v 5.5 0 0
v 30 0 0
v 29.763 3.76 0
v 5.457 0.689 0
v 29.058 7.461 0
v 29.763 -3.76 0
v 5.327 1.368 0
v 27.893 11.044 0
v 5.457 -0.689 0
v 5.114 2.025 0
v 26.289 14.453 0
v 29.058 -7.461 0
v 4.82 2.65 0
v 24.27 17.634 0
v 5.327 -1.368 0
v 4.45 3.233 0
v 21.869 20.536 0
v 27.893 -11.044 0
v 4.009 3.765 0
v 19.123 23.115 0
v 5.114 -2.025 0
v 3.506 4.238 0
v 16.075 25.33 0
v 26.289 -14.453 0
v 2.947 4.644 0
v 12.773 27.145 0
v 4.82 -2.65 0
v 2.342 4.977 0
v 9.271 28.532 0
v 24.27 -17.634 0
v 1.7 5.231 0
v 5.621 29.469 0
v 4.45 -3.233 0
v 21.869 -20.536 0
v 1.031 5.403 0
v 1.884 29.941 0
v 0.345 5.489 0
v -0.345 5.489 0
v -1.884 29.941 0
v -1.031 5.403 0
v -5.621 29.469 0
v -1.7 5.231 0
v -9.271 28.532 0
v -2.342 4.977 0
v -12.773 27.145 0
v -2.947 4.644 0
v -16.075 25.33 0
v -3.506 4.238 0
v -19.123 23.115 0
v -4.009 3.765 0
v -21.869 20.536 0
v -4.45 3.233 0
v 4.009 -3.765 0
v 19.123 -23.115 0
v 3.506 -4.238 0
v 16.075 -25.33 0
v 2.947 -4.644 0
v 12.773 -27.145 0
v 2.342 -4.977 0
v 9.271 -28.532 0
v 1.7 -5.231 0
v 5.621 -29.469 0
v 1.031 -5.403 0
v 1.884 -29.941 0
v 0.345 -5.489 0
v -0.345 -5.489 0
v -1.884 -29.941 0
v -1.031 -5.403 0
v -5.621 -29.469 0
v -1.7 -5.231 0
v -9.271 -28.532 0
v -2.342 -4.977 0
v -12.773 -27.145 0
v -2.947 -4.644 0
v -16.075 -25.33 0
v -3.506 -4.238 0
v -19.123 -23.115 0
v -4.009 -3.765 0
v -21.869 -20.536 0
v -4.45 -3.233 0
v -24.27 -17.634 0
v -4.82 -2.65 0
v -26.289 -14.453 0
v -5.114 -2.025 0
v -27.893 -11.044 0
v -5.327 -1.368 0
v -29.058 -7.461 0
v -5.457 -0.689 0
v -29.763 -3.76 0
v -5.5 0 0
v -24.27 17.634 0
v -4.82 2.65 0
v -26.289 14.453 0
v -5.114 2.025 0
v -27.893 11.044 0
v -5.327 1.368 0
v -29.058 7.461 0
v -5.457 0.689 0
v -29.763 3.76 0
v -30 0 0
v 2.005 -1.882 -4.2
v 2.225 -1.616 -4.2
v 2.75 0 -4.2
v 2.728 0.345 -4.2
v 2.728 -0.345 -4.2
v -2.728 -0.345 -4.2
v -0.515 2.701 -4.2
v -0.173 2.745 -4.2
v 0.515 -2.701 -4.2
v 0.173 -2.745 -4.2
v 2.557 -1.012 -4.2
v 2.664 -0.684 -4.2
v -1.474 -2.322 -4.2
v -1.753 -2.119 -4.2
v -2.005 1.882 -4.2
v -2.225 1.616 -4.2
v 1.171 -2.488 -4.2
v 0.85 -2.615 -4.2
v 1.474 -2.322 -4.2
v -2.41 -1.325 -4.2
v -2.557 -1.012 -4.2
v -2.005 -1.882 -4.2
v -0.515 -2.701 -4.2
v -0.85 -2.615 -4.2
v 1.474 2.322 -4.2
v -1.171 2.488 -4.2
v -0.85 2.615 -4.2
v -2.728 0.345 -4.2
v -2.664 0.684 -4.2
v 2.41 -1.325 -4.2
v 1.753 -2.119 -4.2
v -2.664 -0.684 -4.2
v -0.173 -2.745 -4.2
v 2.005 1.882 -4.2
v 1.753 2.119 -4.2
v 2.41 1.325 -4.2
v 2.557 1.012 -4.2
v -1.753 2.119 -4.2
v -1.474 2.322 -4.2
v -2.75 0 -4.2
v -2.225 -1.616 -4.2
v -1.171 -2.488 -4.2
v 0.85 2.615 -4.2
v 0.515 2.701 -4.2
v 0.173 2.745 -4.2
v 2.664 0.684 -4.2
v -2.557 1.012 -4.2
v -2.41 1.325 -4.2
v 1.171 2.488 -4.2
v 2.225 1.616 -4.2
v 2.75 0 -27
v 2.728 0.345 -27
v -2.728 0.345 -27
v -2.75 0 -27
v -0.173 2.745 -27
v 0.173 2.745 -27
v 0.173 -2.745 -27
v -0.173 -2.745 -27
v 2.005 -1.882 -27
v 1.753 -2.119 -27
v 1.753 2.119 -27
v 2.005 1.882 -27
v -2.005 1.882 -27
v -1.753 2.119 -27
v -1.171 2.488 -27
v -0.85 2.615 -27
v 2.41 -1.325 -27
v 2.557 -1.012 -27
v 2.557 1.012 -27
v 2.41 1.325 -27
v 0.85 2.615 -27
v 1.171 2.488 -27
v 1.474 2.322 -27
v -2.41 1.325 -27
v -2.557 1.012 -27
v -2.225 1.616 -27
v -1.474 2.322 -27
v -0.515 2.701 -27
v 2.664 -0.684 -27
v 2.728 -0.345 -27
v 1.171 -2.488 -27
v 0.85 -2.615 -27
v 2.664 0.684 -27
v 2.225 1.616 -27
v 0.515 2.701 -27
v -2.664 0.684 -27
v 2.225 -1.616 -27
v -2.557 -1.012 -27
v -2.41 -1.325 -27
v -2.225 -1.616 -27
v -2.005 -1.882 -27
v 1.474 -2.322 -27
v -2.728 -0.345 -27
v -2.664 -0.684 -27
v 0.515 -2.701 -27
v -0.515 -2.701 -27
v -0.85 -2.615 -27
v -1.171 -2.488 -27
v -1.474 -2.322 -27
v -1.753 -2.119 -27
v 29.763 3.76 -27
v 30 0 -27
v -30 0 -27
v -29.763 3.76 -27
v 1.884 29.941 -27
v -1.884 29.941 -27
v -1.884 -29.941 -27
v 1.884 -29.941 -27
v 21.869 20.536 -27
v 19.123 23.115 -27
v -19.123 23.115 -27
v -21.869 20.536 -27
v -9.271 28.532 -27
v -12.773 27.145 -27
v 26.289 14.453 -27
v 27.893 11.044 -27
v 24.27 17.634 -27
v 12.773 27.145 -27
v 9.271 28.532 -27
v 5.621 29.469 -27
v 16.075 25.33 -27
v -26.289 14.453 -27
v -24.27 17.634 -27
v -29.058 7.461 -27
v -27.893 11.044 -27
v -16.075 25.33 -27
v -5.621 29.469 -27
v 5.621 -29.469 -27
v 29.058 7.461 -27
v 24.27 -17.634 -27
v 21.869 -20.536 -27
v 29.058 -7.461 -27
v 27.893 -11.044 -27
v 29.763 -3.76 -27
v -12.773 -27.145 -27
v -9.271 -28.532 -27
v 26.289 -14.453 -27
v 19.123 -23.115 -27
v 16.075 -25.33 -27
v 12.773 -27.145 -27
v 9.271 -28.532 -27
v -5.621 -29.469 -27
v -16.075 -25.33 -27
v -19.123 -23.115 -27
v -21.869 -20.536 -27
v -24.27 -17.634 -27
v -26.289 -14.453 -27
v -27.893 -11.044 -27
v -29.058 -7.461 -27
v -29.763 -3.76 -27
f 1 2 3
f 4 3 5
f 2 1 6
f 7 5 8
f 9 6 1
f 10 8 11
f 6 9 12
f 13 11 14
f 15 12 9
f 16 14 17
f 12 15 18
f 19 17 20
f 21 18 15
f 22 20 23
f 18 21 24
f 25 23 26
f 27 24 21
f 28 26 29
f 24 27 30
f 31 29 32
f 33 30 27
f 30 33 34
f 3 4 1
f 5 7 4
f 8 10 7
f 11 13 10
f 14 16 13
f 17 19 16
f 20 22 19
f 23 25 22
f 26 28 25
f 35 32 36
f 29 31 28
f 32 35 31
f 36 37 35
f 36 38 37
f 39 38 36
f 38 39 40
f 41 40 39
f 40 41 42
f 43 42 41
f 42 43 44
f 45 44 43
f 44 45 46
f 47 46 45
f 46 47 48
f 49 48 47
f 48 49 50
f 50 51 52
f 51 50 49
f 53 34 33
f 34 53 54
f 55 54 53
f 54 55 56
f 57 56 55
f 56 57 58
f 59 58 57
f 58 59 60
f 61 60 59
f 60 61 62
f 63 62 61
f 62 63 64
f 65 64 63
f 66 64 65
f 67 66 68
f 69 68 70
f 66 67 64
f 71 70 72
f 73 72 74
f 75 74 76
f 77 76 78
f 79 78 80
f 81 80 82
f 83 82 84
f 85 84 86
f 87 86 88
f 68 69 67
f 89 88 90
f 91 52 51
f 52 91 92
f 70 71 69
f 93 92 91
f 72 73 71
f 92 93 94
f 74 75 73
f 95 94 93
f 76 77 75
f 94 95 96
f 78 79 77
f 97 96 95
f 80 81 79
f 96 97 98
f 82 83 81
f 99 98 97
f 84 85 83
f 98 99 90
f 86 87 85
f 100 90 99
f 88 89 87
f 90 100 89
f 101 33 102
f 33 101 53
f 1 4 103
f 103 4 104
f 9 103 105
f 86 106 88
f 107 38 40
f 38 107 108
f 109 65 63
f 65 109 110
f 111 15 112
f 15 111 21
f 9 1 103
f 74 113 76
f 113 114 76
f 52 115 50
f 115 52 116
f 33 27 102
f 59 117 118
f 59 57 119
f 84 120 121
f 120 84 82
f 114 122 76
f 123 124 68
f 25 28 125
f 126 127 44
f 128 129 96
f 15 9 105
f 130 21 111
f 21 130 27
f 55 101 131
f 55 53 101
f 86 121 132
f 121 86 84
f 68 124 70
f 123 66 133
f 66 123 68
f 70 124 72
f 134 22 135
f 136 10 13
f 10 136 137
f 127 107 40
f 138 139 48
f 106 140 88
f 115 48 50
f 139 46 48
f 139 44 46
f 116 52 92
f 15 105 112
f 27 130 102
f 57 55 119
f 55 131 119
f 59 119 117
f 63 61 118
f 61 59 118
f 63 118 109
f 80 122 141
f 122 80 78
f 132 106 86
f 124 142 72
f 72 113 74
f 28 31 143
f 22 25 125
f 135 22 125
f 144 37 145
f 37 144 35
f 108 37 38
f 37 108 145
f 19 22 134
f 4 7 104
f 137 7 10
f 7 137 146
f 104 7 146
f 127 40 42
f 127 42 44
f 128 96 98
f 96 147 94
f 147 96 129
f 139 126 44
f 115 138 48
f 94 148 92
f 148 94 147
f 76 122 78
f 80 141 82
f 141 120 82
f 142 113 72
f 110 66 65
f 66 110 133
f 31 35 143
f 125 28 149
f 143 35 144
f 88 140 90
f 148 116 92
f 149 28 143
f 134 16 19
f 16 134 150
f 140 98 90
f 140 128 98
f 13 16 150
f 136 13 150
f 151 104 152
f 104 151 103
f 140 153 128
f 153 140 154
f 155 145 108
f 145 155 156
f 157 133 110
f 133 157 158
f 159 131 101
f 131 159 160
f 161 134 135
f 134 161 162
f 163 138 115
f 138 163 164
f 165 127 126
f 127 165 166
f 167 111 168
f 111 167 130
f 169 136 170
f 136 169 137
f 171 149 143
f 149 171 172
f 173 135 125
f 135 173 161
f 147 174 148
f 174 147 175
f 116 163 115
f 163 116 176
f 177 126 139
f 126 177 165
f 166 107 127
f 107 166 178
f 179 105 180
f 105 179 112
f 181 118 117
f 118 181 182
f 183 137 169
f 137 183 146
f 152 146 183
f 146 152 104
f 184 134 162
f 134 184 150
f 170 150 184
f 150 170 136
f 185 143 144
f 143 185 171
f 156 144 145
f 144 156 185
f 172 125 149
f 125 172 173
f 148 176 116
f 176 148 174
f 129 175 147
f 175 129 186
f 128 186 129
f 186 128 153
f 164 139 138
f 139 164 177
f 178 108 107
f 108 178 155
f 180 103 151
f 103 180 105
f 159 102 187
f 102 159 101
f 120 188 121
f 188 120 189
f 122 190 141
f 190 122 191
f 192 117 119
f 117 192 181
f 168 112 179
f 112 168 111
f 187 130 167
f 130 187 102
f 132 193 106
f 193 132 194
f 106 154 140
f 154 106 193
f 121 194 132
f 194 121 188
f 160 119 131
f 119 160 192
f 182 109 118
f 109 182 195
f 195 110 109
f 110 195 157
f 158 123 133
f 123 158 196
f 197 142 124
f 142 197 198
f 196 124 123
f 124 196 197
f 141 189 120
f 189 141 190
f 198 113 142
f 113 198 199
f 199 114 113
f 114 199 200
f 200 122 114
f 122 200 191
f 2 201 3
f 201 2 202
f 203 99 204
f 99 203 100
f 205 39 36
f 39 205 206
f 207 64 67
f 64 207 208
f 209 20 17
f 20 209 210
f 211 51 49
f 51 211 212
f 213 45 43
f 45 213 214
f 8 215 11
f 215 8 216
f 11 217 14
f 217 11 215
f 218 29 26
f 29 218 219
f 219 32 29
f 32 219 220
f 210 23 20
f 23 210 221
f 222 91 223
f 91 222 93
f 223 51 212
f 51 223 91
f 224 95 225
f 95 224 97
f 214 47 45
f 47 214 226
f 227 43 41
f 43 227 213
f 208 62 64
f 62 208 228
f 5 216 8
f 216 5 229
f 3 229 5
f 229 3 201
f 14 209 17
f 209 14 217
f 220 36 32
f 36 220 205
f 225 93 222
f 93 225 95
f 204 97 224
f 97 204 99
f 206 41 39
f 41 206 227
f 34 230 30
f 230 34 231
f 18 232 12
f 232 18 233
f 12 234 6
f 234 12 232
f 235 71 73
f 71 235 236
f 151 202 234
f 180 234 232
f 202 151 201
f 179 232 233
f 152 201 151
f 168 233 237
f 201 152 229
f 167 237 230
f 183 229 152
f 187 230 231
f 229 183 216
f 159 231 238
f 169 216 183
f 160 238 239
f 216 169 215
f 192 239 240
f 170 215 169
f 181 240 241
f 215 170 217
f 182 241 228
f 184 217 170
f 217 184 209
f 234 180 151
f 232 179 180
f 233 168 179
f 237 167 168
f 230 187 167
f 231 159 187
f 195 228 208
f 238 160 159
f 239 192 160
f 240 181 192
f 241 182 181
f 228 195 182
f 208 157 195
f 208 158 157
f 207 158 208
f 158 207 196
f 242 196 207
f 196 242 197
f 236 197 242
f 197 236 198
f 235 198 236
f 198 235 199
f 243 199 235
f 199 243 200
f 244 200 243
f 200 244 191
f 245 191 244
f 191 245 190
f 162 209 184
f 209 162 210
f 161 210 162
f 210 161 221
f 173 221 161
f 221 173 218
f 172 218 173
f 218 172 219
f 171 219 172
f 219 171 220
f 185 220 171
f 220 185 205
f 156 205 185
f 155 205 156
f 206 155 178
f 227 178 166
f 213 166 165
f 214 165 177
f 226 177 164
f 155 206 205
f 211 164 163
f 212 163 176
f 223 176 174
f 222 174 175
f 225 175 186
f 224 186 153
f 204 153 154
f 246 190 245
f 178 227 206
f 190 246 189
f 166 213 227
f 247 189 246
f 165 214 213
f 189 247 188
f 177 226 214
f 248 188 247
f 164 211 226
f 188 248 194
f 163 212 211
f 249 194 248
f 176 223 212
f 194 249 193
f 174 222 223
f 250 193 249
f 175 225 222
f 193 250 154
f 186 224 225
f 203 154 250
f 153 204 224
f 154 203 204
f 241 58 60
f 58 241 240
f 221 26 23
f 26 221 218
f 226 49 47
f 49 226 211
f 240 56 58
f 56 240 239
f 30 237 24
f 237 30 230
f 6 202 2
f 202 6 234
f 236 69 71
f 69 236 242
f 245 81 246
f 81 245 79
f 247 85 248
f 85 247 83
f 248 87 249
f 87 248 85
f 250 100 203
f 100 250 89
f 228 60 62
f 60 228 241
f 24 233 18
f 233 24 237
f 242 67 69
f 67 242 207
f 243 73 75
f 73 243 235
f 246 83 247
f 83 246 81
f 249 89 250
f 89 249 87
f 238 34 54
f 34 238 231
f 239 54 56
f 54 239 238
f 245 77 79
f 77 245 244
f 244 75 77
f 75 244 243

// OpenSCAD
$fn = 50;

difference() {
	union() {
		translate(v = [0, 0, -27.0]) {
			cylinder(h = 27, r = 30.0);
		}
	}
	union() {
		translate(v = [0, 0, 0]) {
			rotate(a = [0, 0, 0]) {
				difference() {
					union() {
						translate(v = [0, 0, -30.0]) {
							cylinder(h = 30, r = 2.25);
						}
						translate(v = [0, 0, -4.2]) {
							cylinder(h = 4.2, r1 = 2.75, r2 = 5.5);
						}
						translate(v = [0, 0, -30.0]) {
							cylinder(h = 30, r = 2.75);
						}
						translate(v = [0, 0, -30.0]) {
							cylinder(h = 30, r = 2.25);
						}
					}
					union();
				}
			}
		}
	}
}
